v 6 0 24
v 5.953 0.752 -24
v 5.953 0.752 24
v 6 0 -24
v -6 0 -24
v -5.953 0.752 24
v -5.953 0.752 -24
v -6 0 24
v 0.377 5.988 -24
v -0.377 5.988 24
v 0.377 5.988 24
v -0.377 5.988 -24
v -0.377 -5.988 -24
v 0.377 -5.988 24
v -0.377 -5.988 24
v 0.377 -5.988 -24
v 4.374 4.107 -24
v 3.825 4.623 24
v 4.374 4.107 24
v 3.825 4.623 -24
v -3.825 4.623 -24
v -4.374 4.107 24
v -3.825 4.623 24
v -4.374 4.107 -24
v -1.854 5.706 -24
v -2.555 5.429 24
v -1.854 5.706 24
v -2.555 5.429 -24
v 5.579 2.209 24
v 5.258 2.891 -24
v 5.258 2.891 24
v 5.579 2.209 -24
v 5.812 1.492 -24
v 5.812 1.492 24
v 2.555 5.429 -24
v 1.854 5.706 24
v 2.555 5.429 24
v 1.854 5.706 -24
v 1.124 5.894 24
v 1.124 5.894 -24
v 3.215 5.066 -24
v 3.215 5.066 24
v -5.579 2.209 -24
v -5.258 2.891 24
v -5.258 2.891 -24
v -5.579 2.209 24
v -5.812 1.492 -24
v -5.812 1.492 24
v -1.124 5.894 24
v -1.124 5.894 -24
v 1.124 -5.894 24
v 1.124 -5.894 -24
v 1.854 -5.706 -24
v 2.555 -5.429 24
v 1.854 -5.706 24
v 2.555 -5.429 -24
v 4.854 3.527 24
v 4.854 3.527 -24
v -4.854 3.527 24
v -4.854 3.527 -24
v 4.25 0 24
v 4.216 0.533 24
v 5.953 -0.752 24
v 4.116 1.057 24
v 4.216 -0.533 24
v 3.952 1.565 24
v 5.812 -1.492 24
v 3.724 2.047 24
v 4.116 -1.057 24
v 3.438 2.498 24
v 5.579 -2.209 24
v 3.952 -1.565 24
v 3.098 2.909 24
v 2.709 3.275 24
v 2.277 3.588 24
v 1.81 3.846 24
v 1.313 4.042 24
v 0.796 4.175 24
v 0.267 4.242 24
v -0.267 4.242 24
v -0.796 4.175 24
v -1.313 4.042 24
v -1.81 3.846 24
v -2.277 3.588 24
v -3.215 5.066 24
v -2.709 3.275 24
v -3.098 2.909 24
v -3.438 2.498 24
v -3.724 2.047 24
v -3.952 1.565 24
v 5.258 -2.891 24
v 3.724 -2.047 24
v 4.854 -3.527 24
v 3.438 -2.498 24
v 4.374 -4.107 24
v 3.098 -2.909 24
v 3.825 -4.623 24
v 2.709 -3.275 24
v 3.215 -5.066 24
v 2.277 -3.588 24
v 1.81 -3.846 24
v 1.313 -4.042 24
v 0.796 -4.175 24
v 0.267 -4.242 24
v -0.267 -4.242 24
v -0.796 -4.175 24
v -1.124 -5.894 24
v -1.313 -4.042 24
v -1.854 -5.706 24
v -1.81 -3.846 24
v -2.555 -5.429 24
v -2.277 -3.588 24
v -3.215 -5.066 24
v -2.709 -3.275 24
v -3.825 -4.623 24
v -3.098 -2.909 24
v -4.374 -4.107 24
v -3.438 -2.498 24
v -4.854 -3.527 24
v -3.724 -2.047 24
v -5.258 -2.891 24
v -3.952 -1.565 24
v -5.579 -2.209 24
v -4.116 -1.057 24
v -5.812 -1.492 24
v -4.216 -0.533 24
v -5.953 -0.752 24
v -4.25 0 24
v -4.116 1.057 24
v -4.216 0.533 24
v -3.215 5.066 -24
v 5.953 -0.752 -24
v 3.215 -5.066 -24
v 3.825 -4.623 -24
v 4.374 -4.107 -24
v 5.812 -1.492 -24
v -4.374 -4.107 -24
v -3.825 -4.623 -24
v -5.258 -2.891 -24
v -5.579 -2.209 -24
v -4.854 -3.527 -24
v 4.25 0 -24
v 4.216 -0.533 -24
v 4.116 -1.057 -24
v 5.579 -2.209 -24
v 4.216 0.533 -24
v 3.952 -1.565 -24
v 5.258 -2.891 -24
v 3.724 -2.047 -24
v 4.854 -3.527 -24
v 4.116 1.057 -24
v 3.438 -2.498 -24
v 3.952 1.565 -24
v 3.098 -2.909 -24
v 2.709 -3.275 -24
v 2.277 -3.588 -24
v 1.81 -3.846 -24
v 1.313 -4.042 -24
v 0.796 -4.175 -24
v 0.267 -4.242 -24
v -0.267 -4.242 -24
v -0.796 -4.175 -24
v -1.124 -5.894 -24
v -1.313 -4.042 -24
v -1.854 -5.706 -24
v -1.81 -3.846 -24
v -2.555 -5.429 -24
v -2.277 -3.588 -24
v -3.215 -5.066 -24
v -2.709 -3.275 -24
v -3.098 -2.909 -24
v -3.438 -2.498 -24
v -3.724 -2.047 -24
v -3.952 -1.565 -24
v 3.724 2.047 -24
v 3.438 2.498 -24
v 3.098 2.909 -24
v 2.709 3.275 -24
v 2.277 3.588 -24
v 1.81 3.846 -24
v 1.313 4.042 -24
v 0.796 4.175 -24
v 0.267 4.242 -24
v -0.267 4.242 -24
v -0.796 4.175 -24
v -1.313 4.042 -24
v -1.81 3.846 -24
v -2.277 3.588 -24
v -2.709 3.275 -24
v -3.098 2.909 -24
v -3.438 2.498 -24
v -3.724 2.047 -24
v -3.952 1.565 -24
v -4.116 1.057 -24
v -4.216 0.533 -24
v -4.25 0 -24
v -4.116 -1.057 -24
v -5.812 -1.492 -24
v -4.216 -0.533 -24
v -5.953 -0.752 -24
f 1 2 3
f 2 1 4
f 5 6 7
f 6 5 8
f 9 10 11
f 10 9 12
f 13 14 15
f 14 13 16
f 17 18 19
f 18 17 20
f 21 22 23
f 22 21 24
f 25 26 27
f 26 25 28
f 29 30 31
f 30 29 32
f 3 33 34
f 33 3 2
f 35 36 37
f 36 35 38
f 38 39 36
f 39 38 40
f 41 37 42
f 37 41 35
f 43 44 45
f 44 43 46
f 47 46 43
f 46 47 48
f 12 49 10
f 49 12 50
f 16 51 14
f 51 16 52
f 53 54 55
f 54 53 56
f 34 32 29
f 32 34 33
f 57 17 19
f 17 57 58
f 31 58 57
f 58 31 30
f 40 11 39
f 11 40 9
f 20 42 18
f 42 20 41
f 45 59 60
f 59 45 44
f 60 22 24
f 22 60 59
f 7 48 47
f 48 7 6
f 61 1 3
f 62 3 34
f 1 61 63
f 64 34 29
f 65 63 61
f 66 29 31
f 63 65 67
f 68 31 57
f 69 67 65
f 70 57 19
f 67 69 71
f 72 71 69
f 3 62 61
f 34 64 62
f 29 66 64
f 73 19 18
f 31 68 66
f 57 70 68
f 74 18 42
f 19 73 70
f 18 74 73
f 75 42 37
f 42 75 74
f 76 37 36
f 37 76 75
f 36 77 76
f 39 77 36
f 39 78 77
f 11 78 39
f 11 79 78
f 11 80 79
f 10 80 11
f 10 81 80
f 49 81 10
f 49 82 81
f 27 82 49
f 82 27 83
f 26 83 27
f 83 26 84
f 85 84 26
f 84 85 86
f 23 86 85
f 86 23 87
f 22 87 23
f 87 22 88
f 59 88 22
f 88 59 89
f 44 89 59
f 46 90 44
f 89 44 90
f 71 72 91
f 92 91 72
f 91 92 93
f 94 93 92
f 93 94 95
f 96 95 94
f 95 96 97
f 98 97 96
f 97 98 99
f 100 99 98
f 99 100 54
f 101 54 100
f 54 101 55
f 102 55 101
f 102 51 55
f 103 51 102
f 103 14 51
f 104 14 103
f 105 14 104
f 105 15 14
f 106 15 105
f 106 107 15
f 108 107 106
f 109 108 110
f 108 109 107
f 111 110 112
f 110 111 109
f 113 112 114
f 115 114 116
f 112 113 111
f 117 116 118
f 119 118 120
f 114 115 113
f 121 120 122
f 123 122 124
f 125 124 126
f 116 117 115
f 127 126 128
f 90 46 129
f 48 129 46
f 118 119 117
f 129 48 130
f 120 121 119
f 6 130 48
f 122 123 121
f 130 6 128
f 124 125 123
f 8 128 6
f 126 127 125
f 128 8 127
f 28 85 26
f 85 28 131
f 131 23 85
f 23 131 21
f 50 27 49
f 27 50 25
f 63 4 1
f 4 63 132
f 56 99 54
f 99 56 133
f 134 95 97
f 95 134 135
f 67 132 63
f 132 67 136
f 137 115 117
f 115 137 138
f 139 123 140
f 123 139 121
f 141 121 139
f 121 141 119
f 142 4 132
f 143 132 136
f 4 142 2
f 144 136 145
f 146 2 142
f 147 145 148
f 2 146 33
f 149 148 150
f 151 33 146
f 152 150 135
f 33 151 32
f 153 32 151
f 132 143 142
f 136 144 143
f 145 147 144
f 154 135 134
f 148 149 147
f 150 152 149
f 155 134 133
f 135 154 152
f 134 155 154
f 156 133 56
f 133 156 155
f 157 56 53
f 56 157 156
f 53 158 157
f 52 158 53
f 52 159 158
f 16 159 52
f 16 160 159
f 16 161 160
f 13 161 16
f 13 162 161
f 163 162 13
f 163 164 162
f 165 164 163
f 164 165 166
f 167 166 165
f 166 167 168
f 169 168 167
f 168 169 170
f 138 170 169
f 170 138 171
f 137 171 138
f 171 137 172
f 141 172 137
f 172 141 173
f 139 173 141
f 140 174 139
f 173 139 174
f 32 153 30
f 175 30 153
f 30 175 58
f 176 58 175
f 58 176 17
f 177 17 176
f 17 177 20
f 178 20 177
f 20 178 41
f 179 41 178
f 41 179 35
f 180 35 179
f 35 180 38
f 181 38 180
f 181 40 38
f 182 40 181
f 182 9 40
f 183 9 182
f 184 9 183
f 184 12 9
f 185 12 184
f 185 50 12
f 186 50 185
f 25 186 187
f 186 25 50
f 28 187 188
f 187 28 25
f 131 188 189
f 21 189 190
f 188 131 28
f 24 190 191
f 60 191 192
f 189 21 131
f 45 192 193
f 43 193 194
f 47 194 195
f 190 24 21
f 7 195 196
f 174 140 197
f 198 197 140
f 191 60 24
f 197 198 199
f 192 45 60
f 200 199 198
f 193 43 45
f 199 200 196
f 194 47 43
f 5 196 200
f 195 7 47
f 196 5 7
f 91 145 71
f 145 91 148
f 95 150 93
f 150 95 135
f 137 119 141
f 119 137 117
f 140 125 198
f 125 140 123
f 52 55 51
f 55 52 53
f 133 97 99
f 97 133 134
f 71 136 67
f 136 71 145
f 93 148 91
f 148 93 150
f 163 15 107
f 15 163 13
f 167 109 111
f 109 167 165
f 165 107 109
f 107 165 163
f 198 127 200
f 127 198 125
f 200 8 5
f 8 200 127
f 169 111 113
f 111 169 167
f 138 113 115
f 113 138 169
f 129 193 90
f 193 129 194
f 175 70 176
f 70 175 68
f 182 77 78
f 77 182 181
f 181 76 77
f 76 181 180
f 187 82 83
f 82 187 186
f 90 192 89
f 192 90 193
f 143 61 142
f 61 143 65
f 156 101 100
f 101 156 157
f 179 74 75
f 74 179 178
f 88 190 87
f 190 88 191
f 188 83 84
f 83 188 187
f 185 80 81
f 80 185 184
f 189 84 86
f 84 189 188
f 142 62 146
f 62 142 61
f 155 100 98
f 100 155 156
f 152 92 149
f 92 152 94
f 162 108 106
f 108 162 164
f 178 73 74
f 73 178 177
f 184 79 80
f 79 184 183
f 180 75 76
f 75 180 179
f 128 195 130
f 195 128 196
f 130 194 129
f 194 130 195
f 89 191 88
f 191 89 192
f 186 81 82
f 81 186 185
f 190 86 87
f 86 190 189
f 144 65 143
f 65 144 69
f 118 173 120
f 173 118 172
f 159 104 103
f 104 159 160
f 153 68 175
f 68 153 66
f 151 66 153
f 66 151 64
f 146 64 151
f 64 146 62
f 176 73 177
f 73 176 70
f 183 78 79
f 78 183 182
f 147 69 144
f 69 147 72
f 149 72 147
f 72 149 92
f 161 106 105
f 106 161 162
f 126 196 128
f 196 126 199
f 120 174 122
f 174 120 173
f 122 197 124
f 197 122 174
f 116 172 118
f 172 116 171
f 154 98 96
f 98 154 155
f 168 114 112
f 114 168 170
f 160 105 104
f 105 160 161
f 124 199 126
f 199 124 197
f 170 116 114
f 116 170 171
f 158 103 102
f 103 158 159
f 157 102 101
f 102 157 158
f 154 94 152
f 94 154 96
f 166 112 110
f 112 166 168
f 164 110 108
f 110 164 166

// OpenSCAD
$fn = 50;


difference() {
	union() {
		translate(v = [0, 0, -24.0000000000]) {
			cylinder(h = 48, r = 6.0000000000);
		}
	}
	union() {
		translate(v = [0, 0, -100.0000000000]) {
			cylinder(h = 200, r = 4.2500000000);
		}
	}
}
